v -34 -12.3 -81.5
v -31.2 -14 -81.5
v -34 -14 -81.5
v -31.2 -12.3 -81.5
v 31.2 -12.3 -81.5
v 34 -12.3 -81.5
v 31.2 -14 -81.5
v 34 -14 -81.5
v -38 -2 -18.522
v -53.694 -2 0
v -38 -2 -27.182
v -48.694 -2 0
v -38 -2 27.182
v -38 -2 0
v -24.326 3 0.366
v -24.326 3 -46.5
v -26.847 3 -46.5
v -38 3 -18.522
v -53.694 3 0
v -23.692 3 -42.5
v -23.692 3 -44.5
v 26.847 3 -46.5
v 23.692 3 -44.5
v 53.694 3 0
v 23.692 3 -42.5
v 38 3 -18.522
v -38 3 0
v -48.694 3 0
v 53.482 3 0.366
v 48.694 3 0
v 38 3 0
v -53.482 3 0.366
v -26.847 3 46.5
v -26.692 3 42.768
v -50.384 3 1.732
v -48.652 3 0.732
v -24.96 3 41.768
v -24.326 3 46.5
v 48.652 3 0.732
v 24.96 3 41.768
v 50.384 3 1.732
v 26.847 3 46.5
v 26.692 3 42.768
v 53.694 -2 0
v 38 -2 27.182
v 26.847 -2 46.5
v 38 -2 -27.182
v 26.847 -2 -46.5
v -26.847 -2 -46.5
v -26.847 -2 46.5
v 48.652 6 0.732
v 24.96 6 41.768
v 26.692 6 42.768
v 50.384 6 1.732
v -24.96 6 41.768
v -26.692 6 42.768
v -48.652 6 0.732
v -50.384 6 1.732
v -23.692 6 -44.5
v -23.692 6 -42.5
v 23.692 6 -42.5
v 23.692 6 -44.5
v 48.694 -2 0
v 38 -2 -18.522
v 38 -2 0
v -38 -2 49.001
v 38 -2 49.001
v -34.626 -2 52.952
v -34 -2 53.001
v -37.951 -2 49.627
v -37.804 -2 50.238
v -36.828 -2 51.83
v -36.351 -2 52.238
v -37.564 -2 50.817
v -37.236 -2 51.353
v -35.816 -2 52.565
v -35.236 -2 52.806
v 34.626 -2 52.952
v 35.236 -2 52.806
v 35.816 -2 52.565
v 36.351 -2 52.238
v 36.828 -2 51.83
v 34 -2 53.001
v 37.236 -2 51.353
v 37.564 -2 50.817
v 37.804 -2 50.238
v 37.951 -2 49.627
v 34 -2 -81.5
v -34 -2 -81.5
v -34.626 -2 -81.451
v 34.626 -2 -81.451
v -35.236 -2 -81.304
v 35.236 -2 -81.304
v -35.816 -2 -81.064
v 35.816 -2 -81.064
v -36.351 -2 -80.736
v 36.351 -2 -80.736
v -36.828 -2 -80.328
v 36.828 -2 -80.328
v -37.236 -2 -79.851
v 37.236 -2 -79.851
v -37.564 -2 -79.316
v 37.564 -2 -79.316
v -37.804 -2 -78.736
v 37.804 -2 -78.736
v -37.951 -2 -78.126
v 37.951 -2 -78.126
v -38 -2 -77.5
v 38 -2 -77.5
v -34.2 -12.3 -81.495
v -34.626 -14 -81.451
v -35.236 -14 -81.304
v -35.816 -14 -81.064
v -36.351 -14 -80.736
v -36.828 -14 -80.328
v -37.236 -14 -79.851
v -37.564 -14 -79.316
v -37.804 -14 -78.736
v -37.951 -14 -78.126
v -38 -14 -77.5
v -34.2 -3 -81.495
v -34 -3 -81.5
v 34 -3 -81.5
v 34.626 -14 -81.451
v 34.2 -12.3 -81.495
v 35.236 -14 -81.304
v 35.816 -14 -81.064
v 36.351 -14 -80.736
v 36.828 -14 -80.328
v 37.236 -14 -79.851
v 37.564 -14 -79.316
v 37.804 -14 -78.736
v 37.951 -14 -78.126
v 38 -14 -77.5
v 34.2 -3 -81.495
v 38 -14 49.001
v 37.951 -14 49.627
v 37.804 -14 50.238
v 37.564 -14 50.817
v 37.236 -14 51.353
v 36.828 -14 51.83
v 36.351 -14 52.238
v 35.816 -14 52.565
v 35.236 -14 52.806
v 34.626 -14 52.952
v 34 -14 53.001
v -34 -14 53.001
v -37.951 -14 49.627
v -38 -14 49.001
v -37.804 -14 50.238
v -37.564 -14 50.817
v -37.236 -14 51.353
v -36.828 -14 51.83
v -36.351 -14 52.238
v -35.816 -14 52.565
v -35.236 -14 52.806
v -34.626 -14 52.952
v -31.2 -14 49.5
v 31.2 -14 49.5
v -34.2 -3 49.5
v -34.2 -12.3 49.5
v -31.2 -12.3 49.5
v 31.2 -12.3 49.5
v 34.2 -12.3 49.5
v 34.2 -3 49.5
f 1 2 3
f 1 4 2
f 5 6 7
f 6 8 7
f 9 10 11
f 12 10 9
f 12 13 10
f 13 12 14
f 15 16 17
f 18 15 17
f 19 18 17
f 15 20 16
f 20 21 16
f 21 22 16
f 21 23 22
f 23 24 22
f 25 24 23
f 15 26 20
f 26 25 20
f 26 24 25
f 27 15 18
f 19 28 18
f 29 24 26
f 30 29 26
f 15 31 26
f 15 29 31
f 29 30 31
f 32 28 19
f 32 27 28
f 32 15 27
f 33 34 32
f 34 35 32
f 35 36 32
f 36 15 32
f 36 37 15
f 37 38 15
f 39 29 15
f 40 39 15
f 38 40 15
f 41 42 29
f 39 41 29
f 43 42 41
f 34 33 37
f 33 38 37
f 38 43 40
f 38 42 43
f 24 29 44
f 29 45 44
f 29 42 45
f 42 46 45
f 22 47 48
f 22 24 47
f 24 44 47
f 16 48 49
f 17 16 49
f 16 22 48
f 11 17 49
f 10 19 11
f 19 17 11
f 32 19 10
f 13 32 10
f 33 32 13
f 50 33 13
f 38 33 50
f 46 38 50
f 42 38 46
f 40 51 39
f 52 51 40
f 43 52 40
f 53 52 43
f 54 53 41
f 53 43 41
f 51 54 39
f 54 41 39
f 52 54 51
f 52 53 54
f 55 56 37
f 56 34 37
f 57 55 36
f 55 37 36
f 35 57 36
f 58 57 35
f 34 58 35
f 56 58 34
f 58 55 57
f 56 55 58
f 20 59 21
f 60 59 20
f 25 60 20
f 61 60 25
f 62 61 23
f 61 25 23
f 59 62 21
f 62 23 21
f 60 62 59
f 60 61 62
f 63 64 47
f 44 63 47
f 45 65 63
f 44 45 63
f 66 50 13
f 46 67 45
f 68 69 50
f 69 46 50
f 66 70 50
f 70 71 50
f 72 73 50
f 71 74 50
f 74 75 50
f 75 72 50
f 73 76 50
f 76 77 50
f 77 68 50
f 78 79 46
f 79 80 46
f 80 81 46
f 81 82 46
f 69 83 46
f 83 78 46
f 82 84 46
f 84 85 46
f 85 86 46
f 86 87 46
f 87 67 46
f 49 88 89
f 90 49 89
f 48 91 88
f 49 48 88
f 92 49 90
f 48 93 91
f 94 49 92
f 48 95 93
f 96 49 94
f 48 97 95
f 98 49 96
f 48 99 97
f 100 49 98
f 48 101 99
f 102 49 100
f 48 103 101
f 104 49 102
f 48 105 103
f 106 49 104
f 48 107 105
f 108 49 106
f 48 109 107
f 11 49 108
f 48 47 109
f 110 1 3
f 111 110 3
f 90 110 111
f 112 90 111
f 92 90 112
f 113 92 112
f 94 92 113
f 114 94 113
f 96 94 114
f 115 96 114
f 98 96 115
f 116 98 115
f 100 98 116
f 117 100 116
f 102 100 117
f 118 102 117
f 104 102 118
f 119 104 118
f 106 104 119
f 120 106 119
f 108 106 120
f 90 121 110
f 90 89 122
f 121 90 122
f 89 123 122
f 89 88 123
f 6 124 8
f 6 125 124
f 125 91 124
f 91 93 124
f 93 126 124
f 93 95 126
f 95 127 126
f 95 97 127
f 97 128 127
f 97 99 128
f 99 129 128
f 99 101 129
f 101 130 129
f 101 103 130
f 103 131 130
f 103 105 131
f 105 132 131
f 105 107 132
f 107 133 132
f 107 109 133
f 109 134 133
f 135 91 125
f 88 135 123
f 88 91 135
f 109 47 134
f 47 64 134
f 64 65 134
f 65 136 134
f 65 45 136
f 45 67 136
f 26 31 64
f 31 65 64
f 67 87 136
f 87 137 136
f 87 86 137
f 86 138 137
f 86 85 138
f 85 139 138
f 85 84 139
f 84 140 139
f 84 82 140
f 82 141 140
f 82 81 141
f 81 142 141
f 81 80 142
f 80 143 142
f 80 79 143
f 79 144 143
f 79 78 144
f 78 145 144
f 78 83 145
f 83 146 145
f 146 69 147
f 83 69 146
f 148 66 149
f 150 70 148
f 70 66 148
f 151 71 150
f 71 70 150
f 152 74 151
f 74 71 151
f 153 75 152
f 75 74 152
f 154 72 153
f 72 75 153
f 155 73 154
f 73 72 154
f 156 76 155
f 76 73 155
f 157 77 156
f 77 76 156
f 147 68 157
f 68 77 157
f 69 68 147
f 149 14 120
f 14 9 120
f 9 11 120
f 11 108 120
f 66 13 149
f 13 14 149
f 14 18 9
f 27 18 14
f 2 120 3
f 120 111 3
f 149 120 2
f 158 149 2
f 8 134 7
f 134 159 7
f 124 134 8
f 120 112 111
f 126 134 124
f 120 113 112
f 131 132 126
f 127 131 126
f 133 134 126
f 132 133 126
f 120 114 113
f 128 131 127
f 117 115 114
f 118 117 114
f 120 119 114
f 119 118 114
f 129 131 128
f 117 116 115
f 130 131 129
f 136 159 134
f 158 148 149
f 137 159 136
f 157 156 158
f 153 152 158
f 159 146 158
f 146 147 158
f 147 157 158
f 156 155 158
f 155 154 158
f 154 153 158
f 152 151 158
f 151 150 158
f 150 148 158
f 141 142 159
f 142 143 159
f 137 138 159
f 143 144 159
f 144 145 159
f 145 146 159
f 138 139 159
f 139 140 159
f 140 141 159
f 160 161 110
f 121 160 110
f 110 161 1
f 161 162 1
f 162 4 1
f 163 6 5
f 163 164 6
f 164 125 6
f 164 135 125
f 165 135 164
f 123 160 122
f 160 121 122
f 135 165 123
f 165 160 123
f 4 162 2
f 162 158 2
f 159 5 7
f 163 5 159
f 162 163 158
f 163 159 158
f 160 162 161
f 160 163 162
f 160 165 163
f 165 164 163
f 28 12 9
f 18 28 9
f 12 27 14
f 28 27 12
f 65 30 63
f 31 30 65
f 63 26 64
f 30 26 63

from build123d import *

# Parameters (mm, degrees)
RESSALTO_EXTRUS_O1_DEPTH = 3
ESBO_O2_W                = 47.384173958
ESBO_O2_H                = 2
RESSALTO_EXTRUS_O2_DEPTH = 3
RESSALTO_EXTRUS_O3_DEPTH = 2
RESSALTO_EXTRUS_O5_DEPTH = 12
CORTE_EXTRUS_O1_DEPTH    = 131
CORTE_EXTRUS_O3_DEPTH    = 10


with BuildPart() as part:
    # Esboço1 → Ressalto-extrusão1 (new body)
    with BuildSketch(Plane(origin=(0, 0, 0), x_dir=(1, 0, 0), z_dir=(0, 1, 0))):
        Polygon((53.693575035, 0), (26.846787517, 46.5), (-26.846787517, 46.5), (-53.693575035, 0), (-26.846787517, -46.5), (26.846787517, -46.5), align=None)
    extrude(amount=RESSALTO_EXTRUS_O1_DEPTH)

    # Esboço2 → Ressalto-extrusão2 (add)
    with BuildSketch(Plane(origin=(0, 3, 0), x_dir=(1, 0, 0), z_dir=(0, 1, 0))):
        with Locations((0, 43.5)):
            Rectangle(ESBO_O2_W, ESBO_O2_H)
        Polygon((-50.384173958, -1.732050808), (-26.692086979, -42.767949192), (-24.960036171, -41.767949192), (-48.65212315, -0.732050808), align=None)
        Polygon((26.692086979, -42.767949192), (50.384173958, -1.732050808), (48.65212315, -0.732050808), (24.960036171, -41.767949192), align=None)
    extrude(amount=RESSALTO_EXTRUS_O2_DEPTH)

    # Esboço3 → Ressalto-extrusão3 (add)
    with BuildSketch(Plane.XZ):
        Polygon((26.846787517, 46.5), (-26.846787517, 46.5), (-53.693575035, 0), (-26.846787517, -46.5), (26.846787517, -46.5), (53.693575035, 0), align=None)
    extrude(amount=RESSALTO_EXTRUS_O3_DEPTH)

    # Esboço5 → Ressalto-extrusão5 (add)
    with BuildSketch(Plane.XZ.offset(2)):
        with BuildLine():
            Line((38, 49.00146682), (38, -77.5))
            ThreePointArc((38, -77.5), (36.828427125, -80.328427125), (34, -81.5))
            Line((34, -81.5), (-34, -81.5))
            ThreePointArc((-34, -81.5), (-36.828427125, -80.328427125), (-38, -77.5))
            Line((-38, -77.5), (-38, 49.00146682))
            ThreePointArc((-38, 49.00146682), (-36.828427125, 51.829893945), (-34, 53.00146682))
            Line((-34, 53.00146682), (34, 53.00146682))
            ThreePointArc((34, 53.00146682), (36.828427125, 51.829893945), (38, 49.00146682))
        make_face()
    extrude(amount=RESSALTO_EXTRUS_O5_DEPTH)

    # Esboço7 → Corte-extrusão1 (cut)
    with BuildSketch(Plane(origin=(0, 0, -81.5), x_dir=(-1, 0, 0), z_dir=(0, 0, -1))):
        Polygon((-34.2, -3), (34.2, -3), (34.2, -12.3), (31.2, -12.3), (31.2, -23.281359025), (-31.2, -26.250413902), (-31.2, -12.3), (-34.2, -12.3), align=None)
    extrude(amount=-CORTE_EXTRUS_O1_DEPTH, mode=Mode.SUBTRACT)

    # Esboço8 → Corte-extrusão3 (cut)
    with BuildSketch(Plane.XZ.offset(2)):
        Polygon((-48.693575035, 0), (-38, 0), (-38, -18.521815275), align=None)
        Polygon((38, 0), (48.693575035, 0), (38, -18.521815275), align=None)
    extrude(amount=-CORTE_EXTRUS_O3_DEPTH, mode=Mode.SUBTRACT)


solid = part.part
